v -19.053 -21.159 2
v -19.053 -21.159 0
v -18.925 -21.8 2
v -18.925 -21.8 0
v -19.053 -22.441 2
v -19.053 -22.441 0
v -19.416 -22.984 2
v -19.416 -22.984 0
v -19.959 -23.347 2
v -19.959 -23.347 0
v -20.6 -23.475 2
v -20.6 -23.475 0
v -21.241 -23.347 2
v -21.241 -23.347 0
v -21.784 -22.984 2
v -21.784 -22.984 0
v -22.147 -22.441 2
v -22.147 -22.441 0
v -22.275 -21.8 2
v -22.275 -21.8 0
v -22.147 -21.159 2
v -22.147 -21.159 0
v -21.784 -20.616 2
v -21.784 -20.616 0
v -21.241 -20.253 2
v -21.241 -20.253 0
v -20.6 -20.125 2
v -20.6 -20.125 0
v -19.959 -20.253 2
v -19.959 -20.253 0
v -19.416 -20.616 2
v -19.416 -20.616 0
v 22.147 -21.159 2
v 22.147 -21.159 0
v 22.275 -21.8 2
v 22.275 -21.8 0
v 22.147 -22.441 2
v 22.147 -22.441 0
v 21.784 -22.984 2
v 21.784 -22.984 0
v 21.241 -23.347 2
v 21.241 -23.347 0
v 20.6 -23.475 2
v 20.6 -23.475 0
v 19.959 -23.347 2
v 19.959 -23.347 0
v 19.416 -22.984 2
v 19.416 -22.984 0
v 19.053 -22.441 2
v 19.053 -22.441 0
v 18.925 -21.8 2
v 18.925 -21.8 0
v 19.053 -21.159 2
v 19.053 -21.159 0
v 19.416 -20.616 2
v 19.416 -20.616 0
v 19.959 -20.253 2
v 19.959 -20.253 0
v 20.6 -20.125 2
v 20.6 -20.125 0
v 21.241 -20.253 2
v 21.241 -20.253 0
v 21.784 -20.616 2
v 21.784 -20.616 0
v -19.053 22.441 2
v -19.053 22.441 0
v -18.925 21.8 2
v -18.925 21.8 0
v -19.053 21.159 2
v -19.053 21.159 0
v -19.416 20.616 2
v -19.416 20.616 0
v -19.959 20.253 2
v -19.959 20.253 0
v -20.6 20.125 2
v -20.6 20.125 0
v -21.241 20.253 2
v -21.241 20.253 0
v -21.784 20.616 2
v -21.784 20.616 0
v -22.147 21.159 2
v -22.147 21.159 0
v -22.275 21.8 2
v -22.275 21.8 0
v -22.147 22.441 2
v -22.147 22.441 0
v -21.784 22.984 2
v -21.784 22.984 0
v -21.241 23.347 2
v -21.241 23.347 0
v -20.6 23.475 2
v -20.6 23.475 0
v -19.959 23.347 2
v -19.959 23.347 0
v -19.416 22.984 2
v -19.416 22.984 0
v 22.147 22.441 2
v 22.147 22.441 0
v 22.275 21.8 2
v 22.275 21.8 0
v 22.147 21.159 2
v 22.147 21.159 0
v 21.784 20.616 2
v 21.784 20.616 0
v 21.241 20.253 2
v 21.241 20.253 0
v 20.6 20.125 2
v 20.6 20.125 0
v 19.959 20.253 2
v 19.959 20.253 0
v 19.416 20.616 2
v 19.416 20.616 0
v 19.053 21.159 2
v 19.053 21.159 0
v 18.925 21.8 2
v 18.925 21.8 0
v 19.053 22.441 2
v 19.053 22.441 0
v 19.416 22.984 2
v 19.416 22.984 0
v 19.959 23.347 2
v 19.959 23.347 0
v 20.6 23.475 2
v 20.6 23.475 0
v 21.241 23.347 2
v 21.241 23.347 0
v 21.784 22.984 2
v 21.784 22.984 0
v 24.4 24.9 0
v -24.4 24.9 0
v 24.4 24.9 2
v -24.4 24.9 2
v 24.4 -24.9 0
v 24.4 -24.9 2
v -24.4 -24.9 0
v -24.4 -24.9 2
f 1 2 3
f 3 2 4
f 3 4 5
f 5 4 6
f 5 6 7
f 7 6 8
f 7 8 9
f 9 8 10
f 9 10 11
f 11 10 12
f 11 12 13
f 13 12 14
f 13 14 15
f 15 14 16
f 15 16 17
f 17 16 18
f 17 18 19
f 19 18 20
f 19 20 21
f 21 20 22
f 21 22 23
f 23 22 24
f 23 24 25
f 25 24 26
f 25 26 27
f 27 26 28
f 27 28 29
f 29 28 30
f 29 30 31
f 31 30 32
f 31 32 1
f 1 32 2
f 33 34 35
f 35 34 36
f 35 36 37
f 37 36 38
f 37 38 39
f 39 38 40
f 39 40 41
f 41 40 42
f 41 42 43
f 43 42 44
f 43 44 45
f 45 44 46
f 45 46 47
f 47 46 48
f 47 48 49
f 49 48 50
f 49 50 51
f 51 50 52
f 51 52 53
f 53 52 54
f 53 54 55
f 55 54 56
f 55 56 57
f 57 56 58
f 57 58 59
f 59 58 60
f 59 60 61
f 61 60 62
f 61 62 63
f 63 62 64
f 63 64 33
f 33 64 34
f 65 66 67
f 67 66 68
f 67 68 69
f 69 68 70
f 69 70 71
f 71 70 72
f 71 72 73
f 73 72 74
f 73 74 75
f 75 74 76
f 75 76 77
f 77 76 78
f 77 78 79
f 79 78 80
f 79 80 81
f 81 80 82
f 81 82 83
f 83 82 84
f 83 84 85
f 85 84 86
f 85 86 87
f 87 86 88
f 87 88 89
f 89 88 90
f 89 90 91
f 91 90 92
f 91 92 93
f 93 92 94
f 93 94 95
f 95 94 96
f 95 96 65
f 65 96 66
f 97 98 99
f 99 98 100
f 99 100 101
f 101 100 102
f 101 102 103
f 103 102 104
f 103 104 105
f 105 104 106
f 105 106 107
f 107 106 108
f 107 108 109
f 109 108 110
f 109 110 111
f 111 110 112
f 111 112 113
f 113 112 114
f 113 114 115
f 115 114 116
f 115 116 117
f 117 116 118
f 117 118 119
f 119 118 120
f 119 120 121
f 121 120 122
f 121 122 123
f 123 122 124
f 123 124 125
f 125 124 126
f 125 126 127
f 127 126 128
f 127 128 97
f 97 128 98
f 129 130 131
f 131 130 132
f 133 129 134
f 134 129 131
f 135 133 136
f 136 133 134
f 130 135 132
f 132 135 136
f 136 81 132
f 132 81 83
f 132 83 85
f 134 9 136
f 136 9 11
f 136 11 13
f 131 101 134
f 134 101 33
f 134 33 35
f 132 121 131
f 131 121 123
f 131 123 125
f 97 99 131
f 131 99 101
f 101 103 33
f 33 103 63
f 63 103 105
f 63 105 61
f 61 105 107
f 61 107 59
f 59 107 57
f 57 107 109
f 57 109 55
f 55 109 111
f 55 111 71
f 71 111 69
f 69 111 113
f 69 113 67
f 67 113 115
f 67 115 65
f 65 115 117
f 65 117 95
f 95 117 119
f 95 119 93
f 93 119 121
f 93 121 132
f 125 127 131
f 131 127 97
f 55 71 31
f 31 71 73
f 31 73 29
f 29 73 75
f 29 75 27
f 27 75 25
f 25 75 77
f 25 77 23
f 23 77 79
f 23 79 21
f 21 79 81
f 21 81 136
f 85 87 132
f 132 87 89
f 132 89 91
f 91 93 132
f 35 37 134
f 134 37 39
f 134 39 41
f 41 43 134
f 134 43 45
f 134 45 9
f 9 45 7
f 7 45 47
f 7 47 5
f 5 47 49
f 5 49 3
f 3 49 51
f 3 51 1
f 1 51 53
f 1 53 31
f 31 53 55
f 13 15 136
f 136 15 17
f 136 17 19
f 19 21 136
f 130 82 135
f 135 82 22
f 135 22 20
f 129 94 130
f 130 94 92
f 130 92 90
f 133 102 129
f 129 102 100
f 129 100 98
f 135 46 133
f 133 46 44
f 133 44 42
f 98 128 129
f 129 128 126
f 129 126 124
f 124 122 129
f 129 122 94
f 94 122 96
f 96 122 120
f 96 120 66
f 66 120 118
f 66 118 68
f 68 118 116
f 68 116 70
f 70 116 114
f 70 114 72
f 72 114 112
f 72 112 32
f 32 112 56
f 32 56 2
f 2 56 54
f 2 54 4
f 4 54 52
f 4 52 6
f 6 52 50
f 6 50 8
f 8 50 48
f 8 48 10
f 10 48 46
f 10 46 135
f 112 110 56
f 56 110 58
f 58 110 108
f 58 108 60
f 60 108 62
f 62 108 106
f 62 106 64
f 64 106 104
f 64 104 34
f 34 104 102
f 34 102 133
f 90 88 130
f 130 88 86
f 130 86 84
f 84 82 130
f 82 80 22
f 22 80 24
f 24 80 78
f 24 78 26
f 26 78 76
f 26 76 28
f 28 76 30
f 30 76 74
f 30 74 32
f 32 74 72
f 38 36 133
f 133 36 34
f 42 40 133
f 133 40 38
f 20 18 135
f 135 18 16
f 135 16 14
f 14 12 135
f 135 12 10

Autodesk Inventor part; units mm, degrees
ref_plane "YZ Plane" through (0, 0, 0) normal (1, 0, 0) x (0, 1, 0)
ref_plane "XZ Plane" through (0, 0, 0) normal (0, 1, 0) x (-1, 0, 0)
ref_plane "XY Plane" through (0, 0, 0) normal (0, 0, 1) x (1, 0, 0)
sketch "Sketch1" plane through (0, 0, 0) normal (0, 0, 1) x (1, 0, 0)
  line L0 (24.4, 24.9) -> (-24.4, 24.9)
  line L1 (-24.4, 24.9) -> (-24.4, -24.9)
  line L2 (-24.4, -24.9) -> (24.4, -24.9)
  line L3 (24.4, -24.9) -> (24.4, 24.9)
  circle A0 centre (20.6, 21.8) radius 1.675
  line L4 (0, 24.9) -> (0, -24.9) construction
  line L5 (24.4, 0) -> (-24.4, 0) construction
  circle A1 centre (-20.6, 21.8) radius 1.675
  line L6 (-24.4, 0) -> (24.4, 0) construction
  circle A2 centre (20.6, -21.8) radius 1.675
  circle A3 centre (-20.6, -21.8) radius 1.675
  point P0 (0, 0)
  dimension "d0" = 48.8
  dimension "d1" = 49.8
  dimension "d3" = 3.35
  dimension "d4" = 3.1
  dimension "d5" = 3.8
extrude "Extrusion1" add sketch "Sketch1" along normal blind 2
properties part number "Pomodoro Robot Head's back"
